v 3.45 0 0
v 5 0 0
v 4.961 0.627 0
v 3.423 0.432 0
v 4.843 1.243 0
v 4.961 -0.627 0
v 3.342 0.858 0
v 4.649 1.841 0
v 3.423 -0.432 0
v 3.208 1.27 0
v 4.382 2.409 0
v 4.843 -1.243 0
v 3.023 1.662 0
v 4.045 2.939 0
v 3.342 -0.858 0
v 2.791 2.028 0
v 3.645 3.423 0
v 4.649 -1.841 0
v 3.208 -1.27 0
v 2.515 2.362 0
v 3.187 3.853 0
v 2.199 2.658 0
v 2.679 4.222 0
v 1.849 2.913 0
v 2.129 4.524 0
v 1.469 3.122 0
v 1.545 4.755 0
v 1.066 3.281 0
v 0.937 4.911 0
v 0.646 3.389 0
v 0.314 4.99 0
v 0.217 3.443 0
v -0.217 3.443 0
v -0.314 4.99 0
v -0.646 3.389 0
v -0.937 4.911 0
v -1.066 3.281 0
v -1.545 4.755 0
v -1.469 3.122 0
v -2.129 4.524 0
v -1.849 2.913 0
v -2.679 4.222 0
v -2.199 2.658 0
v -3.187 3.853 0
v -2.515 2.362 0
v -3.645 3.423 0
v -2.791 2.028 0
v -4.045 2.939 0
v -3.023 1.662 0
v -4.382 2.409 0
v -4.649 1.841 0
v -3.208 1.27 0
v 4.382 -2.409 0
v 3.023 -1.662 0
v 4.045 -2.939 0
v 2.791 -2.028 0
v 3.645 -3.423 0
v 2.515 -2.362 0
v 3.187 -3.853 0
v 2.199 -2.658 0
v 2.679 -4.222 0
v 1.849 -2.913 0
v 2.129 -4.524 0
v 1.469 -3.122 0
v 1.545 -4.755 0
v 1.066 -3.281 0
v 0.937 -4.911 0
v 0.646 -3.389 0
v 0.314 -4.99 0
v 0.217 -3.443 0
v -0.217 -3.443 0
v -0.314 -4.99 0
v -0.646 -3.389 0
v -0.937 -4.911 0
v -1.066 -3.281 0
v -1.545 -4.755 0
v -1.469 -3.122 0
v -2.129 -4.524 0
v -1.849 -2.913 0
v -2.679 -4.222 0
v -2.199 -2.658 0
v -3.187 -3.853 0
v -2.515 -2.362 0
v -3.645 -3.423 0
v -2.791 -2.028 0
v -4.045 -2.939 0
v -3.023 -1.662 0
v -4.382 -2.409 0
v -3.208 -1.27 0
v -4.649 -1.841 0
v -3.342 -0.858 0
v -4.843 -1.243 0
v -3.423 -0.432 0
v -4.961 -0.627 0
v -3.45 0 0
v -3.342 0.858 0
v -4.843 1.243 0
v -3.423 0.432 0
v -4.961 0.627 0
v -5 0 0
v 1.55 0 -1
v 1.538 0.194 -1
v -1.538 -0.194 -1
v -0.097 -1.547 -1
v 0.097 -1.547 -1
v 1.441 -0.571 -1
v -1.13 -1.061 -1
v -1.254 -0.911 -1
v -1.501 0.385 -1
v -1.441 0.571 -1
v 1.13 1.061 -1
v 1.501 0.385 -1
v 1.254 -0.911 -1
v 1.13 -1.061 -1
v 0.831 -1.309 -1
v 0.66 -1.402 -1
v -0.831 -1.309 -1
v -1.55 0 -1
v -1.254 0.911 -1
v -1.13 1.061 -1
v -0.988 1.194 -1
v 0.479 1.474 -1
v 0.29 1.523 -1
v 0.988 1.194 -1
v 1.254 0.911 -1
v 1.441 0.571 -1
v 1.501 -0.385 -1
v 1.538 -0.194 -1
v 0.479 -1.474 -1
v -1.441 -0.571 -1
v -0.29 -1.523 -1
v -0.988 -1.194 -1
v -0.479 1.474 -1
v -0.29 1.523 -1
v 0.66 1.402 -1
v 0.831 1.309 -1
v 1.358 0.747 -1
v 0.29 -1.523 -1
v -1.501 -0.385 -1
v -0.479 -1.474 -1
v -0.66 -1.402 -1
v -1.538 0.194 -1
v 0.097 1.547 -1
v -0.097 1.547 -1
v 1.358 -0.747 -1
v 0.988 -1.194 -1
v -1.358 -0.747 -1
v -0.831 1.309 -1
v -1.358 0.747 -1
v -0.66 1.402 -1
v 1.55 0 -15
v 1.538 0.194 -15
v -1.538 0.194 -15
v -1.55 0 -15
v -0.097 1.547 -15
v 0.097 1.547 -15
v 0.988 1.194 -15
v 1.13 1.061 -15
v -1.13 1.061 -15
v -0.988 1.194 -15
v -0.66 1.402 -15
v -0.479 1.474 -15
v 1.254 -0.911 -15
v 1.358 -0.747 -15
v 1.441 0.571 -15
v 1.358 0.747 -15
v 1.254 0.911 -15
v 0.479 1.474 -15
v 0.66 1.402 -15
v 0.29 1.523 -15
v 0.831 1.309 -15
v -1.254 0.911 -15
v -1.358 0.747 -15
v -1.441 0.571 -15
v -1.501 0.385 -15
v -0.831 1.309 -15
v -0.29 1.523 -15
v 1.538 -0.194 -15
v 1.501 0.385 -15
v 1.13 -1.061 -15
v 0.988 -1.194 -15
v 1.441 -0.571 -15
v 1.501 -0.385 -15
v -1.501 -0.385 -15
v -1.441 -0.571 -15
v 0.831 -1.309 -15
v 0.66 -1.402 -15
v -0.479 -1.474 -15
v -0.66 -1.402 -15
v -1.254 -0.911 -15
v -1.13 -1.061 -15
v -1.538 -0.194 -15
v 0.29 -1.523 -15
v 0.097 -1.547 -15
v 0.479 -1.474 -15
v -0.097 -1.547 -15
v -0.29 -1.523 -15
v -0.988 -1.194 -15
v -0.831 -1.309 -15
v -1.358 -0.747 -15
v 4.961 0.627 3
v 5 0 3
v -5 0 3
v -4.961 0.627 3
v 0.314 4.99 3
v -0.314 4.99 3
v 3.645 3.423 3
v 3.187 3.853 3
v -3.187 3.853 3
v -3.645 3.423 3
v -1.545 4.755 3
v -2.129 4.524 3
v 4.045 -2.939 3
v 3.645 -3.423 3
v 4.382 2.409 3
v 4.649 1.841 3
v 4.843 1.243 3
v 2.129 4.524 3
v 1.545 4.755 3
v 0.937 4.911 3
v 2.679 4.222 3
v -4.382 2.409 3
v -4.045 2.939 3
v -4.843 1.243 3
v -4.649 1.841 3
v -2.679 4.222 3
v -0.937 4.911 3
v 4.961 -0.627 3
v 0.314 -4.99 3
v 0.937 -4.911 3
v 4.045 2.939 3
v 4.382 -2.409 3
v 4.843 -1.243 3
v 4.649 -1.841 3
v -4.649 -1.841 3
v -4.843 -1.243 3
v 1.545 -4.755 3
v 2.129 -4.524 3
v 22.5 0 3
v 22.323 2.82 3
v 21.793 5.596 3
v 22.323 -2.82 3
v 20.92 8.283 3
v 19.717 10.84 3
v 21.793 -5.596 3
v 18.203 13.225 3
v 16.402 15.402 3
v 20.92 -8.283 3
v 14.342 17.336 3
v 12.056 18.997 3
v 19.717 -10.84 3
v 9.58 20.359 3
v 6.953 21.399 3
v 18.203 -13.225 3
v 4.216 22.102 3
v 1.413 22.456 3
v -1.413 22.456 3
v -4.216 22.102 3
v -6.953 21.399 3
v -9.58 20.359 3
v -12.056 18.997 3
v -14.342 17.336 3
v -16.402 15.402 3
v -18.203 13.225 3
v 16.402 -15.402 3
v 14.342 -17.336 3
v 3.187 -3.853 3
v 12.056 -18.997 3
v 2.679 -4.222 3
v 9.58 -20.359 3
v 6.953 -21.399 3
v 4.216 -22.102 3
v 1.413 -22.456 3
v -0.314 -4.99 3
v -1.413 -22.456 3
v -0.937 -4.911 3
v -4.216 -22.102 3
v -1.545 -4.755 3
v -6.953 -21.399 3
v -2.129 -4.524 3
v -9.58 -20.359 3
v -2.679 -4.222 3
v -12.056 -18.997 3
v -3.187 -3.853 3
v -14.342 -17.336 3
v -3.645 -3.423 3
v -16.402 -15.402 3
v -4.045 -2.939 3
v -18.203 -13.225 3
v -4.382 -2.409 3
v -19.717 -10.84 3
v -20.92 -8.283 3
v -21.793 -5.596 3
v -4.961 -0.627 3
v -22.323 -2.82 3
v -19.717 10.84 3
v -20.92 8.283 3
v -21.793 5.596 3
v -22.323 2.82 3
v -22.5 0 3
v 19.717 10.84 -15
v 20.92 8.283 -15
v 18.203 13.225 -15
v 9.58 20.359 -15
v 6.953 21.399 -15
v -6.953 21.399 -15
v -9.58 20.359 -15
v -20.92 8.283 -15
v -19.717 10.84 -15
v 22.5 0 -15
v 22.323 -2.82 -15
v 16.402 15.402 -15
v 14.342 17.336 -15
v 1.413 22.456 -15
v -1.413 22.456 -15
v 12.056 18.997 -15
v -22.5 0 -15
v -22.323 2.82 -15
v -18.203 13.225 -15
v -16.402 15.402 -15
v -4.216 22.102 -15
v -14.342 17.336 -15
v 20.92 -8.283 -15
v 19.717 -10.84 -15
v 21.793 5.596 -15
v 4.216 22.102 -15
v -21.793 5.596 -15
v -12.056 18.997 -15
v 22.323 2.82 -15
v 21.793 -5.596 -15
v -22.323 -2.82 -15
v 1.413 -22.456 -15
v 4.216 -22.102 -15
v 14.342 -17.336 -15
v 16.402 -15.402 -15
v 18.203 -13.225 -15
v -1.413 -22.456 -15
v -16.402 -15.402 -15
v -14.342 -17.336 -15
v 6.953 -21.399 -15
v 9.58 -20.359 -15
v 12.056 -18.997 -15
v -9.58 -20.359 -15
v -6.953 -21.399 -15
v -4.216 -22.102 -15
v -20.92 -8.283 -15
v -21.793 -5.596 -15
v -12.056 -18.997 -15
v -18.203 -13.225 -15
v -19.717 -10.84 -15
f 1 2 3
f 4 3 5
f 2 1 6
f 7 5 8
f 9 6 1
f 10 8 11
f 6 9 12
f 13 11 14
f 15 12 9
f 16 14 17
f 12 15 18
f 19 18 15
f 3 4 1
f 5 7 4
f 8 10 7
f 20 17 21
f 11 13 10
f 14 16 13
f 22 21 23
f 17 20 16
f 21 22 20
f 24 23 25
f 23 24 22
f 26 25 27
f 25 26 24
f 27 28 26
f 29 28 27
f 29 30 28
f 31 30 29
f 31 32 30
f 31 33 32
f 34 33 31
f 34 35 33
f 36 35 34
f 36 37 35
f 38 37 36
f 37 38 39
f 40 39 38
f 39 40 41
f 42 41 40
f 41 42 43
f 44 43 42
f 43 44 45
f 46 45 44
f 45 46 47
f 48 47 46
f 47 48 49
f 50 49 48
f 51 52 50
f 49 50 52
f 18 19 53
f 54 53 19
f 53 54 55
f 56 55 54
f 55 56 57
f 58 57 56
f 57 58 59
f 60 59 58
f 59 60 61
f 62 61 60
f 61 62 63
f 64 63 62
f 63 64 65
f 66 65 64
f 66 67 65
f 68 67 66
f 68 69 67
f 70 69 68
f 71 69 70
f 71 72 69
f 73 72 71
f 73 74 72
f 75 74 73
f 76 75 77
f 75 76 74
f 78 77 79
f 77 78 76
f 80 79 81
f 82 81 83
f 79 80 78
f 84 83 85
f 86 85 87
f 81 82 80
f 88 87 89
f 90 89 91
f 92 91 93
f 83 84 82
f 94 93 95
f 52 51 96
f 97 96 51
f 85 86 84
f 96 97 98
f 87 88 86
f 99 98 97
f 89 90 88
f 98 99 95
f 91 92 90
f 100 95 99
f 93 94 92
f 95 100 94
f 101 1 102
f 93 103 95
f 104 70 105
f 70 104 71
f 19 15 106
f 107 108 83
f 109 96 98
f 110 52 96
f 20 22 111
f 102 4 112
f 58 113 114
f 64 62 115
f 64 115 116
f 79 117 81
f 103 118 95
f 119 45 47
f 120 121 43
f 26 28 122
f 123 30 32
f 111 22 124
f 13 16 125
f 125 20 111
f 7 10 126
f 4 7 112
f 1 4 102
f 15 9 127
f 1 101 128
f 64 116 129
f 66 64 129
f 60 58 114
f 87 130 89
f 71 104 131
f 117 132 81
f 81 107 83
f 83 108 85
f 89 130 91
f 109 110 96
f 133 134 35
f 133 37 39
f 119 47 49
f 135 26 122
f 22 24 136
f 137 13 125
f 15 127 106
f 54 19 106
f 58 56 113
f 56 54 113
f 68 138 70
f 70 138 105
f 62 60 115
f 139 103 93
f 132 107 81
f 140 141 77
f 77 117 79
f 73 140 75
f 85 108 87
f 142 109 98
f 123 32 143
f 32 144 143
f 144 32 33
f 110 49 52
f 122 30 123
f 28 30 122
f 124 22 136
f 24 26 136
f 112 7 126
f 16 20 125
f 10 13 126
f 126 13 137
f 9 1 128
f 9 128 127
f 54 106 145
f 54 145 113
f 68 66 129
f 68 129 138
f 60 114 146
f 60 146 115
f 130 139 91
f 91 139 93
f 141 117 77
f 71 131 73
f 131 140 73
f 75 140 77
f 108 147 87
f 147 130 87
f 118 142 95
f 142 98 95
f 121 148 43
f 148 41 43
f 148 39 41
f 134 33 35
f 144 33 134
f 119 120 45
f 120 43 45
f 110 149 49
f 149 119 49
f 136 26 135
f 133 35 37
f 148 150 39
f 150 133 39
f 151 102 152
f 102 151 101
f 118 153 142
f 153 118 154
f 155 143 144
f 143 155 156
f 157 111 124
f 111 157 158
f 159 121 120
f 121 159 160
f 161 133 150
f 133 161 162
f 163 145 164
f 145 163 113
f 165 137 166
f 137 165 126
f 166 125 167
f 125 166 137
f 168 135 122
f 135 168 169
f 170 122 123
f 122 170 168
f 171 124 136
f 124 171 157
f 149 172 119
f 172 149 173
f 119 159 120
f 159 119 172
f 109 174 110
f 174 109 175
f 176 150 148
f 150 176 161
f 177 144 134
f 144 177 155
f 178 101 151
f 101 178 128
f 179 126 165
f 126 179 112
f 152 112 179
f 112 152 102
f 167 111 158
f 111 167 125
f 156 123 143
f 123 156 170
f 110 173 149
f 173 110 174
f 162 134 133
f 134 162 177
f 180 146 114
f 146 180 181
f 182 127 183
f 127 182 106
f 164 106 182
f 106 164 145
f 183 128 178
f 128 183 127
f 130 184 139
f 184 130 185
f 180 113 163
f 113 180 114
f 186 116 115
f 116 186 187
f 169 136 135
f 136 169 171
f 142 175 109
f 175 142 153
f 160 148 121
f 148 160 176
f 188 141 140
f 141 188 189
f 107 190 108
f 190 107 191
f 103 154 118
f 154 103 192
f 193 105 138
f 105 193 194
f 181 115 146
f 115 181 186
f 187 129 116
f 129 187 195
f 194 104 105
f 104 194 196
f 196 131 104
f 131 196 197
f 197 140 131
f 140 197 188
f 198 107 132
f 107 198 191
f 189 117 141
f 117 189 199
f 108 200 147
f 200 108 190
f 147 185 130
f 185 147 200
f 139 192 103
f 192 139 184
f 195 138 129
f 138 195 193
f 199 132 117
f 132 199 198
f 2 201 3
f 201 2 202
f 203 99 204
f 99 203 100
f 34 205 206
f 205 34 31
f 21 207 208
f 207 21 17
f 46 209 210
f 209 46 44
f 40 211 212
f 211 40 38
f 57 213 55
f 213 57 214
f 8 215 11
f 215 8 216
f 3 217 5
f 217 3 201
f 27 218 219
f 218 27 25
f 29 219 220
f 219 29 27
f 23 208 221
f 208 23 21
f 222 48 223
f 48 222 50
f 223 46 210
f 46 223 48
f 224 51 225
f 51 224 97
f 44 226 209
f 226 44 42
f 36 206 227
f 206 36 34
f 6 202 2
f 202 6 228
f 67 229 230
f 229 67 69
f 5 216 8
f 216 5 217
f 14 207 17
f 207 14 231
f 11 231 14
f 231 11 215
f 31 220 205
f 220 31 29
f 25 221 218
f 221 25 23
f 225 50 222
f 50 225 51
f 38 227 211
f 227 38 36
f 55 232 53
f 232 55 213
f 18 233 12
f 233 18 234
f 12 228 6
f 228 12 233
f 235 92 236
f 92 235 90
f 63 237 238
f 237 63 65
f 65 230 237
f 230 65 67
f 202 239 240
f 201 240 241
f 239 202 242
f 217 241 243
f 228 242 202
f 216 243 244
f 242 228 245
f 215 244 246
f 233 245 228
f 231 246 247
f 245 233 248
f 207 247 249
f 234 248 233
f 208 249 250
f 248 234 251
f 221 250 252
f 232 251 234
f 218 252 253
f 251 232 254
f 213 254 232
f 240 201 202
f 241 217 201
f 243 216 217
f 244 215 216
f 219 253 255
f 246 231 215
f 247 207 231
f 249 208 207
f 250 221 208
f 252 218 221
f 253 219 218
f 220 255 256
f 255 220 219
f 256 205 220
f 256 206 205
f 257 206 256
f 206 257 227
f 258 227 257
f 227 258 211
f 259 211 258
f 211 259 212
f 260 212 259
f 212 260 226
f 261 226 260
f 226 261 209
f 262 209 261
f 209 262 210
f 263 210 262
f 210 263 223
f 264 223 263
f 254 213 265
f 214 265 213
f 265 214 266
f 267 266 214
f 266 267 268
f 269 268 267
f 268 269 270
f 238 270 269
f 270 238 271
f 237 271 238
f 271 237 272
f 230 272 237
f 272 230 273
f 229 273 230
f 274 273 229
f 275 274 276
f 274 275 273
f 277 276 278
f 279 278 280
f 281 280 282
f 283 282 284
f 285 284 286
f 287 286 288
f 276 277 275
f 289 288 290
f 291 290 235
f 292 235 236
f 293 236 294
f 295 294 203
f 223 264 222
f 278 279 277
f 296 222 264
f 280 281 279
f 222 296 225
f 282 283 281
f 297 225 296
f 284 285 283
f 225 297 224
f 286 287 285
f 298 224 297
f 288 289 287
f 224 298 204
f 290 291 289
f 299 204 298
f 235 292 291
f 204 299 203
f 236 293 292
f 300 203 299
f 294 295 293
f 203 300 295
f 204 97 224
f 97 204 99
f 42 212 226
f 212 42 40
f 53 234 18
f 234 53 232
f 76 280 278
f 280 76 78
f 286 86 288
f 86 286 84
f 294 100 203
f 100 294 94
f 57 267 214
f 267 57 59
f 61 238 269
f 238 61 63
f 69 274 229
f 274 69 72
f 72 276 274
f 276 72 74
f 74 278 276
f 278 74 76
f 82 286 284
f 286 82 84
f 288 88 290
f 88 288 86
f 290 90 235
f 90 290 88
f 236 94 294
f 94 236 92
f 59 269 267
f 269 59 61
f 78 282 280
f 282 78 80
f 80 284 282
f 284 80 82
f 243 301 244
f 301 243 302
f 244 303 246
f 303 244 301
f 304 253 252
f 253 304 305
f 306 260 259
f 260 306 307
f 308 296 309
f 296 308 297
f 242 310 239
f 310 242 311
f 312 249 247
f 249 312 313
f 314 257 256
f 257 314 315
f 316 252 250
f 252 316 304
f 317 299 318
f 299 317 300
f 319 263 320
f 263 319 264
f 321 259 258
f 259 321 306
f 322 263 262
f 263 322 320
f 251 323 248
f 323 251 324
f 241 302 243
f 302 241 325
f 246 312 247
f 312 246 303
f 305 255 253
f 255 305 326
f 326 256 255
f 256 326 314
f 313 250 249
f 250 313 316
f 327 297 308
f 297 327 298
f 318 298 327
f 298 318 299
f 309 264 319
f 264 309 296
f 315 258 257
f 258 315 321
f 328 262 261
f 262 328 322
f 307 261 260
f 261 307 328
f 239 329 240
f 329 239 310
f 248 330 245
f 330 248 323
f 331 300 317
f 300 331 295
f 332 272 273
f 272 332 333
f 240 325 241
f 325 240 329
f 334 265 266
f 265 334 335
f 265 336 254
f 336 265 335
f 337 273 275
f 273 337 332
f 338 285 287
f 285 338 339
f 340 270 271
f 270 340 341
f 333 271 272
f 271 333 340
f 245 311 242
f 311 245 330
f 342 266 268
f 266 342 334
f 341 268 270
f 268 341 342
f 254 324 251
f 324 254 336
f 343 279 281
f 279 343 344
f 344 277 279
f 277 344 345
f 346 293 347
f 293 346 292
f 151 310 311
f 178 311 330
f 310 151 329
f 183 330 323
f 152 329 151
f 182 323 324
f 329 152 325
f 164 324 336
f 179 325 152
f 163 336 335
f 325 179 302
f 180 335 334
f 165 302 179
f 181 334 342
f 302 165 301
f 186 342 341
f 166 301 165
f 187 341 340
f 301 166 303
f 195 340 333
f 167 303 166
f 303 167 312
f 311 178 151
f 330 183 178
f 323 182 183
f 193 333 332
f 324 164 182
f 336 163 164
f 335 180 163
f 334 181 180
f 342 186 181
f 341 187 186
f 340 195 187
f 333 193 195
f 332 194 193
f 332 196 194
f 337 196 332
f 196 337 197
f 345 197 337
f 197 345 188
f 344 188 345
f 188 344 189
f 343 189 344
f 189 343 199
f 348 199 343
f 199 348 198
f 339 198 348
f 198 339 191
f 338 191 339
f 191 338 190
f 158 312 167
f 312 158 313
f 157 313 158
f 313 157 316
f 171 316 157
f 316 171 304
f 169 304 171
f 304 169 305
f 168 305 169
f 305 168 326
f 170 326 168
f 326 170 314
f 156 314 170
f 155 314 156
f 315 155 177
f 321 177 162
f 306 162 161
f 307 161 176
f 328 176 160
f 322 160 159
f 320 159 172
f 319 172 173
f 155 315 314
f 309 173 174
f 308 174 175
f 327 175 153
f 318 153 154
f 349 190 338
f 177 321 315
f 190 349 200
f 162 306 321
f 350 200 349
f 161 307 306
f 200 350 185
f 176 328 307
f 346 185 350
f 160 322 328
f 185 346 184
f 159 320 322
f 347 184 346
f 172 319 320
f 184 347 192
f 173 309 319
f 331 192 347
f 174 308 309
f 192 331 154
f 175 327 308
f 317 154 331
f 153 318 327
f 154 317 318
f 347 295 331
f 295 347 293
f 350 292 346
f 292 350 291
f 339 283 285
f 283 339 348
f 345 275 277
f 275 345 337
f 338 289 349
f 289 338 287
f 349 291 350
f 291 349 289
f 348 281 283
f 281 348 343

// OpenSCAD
$fn = 50;

difference() {
	union() {
		translate(v = [0, 0, -15.0]) {
			cylinder(h = 18, r = 22.5);
		}
	}
	union() {
		translate(v = [0, 0, 0]) {
			rotate(a = [0, 0, 0]) {
				difference() {
					union() {
						translate(v = [0, 0, -18.0]) {
							cylinder(h = 18, r = 1.25);
						}
						translate(v = [0, 0, -1.0]) {
							cylinder(h = 1.0, r1 = 1.55, r2 = 3.45);
						}
						translate(v = [0, 0, -18.0]) {
							cylinder(h = 18, r = 1.55);
						}
						translate(v = [0, 0, -18.0]) {
							cylinder(h = 18, r = 1.25);
						}
					}
					union();
				}
			}
		}
		#cylinder(h = 3, r = 5.0);
	}
}
